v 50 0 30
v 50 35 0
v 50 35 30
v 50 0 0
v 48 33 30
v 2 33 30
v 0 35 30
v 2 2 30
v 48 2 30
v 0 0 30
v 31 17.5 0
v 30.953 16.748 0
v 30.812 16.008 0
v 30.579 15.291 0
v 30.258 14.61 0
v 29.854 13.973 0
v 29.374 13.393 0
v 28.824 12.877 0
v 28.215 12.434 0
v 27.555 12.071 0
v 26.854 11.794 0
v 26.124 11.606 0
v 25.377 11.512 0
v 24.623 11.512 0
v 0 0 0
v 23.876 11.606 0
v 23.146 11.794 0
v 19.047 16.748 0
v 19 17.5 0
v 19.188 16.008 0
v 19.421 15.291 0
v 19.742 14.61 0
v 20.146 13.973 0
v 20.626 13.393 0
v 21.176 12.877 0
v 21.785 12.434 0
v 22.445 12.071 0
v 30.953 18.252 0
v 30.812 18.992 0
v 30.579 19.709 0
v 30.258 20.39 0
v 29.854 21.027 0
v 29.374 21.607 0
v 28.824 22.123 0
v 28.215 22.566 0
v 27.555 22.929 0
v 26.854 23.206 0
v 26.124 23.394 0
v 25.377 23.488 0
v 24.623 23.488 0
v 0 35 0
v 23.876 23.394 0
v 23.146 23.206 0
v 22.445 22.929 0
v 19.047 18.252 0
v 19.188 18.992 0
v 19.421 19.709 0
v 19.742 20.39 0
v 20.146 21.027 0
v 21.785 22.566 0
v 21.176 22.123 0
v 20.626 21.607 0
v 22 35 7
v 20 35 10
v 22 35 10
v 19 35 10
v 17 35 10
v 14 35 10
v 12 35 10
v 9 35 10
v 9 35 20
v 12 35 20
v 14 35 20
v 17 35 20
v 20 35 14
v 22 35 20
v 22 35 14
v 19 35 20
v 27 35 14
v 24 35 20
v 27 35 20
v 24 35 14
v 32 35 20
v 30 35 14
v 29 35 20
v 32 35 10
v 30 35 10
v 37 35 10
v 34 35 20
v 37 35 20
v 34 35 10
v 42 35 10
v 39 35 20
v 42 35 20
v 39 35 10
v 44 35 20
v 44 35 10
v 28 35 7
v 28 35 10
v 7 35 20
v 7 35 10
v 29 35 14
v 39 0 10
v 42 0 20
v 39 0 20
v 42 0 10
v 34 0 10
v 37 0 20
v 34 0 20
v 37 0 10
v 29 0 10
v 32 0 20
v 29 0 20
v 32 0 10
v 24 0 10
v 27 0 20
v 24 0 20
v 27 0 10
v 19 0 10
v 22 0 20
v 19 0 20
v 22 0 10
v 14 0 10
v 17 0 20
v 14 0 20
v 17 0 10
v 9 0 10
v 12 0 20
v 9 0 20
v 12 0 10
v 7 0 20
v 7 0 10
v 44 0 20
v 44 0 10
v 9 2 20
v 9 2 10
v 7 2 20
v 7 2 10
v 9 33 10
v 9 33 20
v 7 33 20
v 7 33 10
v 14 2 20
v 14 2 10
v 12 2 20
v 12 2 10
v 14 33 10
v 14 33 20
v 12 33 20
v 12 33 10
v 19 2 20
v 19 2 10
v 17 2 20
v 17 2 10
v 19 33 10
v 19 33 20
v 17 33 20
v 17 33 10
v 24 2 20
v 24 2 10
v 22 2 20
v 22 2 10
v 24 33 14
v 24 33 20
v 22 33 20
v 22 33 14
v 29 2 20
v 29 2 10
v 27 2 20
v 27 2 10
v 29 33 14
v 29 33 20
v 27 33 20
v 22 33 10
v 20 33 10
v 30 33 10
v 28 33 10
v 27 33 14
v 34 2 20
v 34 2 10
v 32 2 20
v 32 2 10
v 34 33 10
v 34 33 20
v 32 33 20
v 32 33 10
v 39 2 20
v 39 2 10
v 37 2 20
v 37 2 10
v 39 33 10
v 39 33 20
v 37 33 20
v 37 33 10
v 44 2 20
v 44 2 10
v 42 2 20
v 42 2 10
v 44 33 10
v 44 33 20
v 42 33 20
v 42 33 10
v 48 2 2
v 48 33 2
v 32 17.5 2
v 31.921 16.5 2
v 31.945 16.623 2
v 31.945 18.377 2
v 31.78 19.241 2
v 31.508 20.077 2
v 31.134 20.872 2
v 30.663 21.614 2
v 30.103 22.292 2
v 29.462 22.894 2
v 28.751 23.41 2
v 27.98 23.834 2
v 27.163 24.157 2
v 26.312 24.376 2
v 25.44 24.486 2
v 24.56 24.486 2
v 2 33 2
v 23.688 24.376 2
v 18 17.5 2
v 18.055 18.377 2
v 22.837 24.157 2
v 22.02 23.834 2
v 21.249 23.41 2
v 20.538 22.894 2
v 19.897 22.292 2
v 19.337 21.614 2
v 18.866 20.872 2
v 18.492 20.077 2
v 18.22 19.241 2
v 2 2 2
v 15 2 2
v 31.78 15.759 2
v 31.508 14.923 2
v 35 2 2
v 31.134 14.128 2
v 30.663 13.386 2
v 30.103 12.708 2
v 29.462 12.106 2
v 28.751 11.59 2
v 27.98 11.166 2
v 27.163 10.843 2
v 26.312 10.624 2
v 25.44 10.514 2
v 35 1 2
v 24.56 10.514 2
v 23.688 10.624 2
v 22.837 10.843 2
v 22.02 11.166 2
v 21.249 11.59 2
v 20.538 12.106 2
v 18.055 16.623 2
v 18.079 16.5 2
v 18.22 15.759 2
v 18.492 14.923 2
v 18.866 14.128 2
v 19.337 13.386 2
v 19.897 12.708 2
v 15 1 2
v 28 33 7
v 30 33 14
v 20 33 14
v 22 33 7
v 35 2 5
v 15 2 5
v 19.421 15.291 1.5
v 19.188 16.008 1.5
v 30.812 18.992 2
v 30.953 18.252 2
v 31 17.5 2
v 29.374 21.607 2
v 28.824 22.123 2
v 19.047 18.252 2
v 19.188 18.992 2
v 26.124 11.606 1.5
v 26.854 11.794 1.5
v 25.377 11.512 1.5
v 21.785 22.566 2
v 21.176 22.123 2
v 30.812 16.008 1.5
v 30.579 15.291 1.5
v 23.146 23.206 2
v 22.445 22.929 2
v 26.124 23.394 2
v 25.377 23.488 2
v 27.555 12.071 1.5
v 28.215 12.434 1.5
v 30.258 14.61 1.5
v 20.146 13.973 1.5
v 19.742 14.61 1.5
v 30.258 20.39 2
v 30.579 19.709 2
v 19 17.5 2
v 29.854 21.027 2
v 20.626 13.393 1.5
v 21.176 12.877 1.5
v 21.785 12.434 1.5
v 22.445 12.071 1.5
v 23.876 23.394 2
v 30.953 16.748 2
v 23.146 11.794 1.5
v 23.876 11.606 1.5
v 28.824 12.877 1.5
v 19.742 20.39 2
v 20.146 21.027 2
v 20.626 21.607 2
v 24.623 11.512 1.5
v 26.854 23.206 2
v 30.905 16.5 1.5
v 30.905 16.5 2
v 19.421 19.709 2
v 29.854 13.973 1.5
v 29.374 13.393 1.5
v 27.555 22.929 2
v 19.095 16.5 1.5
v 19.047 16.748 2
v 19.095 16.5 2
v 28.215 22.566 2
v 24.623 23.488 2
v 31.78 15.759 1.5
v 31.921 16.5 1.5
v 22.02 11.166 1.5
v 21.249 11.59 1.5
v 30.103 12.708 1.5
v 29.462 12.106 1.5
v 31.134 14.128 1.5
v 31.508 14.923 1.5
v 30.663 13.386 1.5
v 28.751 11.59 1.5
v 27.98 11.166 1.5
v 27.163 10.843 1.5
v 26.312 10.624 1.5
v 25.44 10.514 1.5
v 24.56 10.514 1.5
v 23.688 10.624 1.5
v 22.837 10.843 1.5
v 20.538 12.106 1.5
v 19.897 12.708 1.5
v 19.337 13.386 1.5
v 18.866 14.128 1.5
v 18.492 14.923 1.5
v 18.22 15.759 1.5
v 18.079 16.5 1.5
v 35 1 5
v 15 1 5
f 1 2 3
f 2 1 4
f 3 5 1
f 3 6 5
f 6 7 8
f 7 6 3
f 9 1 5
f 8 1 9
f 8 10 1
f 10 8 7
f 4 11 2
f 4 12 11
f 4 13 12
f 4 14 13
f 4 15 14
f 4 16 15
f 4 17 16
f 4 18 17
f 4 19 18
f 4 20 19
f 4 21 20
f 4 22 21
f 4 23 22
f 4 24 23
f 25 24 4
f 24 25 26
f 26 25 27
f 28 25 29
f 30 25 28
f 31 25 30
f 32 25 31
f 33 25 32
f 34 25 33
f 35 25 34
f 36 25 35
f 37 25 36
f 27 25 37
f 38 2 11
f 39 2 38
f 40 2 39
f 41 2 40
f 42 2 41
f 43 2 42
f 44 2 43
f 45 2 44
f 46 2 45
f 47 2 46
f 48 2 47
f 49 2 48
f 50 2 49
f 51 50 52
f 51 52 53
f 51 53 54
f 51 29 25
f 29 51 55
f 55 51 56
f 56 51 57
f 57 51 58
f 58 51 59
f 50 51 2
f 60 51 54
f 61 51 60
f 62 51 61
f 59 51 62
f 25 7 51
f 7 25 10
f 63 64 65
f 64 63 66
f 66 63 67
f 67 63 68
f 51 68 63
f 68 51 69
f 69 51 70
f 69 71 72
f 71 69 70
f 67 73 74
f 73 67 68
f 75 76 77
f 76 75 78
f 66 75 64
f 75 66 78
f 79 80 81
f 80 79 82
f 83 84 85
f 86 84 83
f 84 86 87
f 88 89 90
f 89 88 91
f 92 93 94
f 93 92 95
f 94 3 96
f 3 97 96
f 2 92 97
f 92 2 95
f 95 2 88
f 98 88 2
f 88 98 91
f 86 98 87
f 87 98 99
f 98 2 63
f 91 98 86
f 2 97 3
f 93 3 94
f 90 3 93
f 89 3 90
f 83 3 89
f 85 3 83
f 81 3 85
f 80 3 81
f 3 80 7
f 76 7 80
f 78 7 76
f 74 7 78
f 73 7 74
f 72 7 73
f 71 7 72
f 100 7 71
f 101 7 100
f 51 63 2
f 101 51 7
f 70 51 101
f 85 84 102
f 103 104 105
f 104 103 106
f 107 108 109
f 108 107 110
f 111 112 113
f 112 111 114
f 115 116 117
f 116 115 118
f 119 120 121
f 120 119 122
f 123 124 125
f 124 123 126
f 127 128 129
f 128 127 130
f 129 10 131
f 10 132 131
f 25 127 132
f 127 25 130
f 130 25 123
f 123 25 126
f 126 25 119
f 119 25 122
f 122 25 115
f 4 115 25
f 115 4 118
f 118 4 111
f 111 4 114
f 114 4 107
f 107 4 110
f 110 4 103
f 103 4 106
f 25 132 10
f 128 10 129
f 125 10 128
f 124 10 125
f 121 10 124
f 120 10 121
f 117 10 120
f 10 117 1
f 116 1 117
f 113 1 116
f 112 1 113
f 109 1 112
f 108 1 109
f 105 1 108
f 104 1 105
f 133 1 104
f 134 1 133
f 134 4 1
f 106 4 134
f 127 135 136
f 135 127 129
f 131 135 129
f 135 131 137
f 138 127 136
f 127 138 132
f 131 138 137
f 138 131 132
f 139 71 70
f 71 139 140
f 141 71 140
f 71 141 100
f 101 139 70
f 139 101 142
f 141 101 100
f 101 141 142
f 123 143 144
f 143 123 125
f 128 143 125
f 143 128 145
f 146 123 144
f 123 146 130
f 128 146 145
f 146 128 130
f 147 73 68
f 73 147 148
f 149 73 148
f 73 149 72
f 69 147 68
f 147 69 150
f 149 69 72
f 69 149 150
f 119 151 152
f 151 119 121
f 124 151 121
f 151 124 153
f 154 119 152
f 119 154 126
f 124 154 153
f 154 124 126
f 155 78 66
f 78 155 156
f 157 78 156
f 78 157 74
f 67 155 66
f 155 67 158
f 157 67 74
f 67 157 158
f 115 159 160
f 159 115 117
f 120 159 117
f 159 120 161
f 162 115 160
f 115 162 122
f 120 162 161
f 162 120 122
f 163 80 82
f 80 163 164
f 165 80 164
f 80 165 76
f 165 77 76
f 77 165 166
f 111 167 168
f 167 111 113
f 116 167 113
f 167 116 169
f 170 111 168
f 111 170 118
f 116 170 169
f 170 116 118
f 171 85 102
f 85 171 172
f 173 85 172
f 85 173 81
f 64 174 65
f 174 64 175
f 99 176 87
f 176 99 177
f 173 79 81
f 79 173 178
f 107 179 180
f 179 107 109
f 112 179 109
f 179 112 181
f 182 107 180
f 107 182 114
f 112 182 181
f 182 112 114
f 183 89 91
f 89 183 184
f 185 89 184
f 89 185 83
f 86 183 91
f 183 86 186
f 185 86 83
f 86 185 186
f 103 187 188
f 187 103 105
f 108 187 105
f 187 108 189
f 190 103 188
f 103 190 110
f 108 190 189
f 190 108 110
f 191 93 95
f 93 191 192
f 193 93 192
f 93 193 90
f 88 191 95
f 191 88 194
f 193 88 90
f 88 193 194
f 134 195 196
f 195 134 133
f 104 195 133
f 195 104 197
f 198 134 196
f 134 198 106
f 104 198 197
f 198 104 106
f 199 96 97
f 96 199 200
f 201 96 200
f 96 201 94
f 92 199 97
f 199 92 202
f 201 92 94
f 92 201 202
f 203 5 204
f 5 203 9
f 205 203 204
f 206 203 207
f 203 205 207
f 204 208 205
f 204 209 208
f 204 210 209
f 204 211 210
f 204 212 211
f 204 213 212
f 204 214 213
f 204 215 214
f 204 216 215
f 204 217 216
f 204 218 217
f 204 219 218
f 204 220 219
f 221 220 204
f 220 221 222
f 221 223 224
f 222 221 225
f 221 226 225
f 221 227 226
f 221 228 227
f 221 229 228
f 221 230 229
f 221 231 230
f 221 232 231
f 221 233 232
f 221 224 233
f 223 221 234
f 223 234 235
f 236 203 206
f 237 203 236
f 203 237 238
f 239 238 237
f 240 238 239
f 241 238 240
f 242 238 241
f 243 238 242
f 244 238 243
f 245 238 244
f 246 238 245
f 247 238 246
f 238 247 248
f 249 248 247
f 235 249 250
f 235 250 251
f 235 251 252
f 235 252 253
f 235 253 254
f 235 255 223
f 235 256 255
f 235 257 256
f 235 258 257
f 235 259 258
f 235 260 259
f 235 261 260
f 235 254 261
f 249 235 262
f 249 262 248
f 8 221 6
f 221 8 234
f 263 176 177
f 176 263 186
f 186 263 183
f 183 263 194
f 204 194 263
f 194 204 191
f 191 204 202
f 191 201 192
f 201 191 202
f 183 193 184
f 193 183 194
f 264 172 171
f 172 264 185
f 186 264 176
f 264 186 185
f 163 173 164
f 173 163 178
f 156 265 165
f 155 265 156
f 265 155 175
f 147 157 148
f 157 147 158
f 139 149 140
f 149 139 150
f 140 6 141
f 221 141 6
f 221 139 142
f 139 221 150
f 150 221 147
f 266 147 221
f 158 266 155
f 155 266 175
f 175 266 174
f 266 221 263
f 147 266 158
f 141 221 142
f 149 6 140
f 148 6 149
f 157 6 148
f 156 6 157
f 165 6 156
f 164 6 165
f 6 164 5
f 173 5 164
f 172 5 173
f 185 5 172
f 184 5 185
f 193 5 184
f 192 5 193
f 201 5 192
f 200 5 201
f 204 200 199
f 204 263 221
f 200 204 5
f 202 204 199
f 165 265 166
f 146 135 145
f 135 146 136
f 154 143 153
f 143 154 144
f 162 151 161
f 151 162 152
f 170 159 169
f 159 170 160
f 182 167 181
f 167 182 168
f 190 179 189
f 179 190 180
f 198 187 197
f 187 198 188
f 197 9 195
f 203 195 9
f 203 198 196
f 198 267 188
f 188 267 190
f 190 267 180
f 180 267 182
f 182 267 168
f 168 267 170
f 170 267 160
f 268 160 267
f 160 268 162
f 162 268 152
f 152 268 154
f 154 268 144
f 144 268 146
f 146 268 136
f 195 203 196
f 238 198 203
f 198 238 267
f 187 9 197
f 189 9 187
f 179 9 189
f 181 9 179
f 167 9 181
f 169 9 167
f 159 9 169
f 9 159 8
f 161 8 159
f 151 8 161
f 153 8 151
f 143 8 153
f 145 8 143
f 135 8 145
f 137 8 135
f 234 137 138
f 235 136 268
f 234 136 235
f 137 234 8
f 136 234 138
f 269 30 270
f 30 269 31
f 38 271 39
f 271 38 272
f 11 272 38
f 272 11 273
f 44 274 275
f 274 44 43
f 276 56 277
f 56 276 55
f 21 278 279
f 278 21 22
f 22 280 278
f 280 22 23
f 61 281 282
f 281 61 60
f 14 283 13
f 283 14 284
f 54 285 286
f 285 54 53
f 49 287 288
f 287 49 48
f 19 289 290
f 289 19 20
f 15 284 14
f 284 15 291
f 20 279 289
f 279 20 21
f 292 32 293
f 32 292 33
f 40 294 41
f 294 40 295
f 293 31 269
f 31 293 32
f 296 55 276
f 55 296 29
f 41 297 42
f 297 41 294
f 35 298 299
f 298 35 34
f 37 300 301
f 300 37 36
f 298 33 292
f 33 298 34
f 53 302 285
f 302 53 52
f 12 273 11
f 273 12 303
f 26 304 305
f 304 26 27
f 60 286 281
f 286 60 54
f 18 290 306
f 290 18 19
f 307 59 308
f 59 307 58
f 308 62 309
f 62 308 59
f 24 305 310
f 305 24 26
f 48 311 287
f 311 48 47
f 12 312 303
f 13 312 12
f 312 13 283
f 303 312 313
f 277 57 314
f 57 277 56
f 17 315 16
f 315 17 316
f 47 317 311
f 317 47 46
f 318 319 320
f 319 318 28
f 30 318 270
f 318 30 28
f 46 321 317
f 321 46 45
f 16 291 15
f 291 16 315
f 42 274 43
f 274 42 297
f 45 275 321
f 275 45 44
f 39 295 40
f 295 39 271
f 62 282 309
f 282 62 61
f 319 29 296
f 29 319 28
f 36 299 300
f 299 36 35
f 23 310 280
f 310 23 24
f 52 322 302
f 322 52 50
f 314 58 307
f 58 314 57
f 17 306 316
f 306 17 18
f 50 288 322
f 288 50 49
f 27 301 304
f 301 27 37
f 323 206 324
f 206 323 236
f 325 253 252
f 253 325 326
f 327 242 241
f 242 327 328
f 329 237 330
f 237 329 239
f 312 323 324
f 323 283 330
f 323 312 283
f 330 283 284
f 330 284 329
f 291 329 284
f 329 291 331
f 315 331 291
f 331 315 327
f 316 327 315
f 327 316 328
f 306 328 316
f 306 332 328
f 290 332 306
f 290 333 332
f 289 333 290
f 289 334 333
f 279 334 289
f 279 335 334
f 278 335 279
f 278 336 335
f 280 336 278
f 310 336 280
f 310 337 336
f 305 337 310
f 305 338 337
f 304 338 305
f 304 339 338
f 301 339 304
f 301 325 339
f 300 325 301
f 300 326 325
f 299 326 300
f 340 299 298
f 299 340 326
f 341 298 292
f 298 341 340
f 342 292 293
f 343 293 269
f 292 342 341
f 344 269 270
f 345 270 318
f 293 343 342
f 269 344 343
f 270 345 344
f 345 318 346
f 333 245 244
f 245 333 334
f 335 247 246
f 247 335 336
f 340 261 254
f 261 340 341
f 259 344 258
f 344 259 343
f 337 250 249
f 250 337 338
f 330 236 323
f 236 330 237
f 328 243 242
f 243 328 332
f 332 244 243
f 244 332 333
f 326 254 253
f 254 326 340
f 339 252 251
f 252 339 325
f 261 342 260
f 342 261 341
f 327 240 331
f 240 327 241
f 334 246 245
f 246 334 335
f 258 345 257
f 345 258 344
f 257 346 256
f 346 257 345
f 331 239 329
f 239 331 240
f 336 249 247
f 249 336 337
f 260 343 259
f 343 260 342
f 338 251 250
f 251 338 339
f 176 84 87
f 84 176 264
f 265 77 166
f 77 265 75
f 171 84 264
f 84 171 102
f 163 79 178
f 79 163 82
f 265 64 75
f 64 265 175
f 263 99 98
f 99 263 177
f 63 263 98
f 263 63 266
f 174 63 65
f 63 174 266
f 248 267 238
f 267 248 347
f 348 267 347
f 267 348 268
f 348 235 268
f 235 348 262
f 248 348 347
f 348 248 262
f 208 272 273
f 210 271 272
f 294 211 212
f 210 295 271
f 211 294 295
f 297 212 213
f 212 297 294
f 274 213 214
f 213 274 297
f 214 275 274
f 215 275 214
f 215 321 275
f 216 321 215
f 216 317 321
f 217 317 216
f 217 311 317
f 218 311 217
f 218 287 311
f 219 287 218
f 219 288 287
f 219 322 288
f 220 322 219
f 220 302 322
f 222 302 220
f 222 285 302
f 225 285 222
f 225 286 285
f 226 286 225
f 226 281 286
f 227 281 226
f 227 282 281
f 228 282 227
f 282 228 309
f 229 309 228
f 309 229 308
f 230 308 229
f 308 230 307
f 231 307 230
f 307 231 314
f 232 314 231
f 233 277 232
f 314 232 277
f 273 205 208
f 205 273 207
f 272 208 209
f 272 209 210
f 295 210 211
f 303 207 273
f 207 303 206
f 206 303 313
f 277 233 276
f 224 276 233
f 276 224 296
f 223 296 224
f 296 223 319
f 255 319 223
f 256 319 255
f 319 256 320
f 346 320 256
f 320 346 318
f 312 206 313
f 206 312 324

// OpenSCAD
// ESP32-CAM Security Camera Case - Main Body
// For Creality Ender-3 V3
// Material: Hyper-PAL (Grey) or Hyper-PETG

// ===== PARAMETERS =====
// Main case dimensions
case_length = 50;
case_width = 35;
case_height = 30;
wall_thickness = 2;

// PCB dimensions
pcb_length = 39.8;
pcb_width = 27;
pcb_height = 4.5;
pcb_support_height = 2;

// Camera lens opening
lens_diameter = 12;
lens_bezel_width = 1;

// Ventilation
vent_slot_length = 10;
vent_slot_width = 2;
vent_hole_diameter = 3;

// USB cutout
usb_width = 10;
usb_height = 4;

// Snap-fit post
post_diameter = 2;
post_height = 16;

// ===== MAIN BODY =====
difference() {
    union() {
        // Outer shell
        cube([case_length, case_width, case_height]);

        // PCB support ribs
        translate([
            (case_length - pcb_length)/2,
            (case_width - pcb_width)/2,
            wall_thickness
        ])
        cube([pcb_length, 1, pcb_support_height]);

        translate([
            (case_length - pcb_length)/2,
            (case_width - pcb_width)/2 + pcb_width - 1,
            wall_thickness
        ])
        cube([pcb_length, 1, pcb_support_height]);

        // Snap-fit posts (4 corners)
        post_positions = [
            [(case_length - pcb_length)/2 + 3, (case_width - pcb_width)/2 + 3],
            [(case_length + pcb_length)/2 - 3, (case_width - pcb_width)/2 + 3],
            [(case_length - pcb_length)/2 + 3, (case_width + pcb_width)/2 - 3],
            [(case_length + pcb_length)/2 - 3, (case_width + pcb_width)/2 - 3]
        ];

        for (pos = post_positions) {
            translate([pos[0], pos[1], wall_thickness])
                cylinder(h=post_height, d=post_diameter, $fn=20);
        }

        // Rear clip holders (for cover attachment)
        // Left clip holder
        translate([wall_thickness, case_width/2 - 5, case_height - 5])
            cube([3, 10, 5]);

        // Right clip holder
        translate([case_length - wall_thickness - 3, case_width/2 - 5, case_height - 5])
            cube([3, 10, 5]);
    }

    // Hollow interior
    translate([wall_thickness, wall_thickness, wall_thickness])
        cube([
            case_length - 2*wall_thickness,
            case_width - 2*wall_thickness,
            case_height
        ]);

    // Camera lens opening (front)
    translate([case_length/2, case_width/2, -1])
        cylinder(h=wall_thickness+2, d=lens_diameter, $fn=50);

    // Lens bezel (recessed ring around lens)
    translate([case_length/2, case_width/2, wall_thickness - 0.5])
        cylinder(h=1.5, d=lens_diameter + 2*lens_bezel_width, $fn=50);

    // USB cutout (back, centered vertically)
    translate([case_length/2 - usb_width/2, case_width - wall_thickness - 1, case_height/3])
        cube([usb_width, wall_thickness+2, usb_height]);

    // Cable strain relief channel (below USB)
    translate([case_length/2 - 3, case_width - wall_thickness - 1, case_height/3 - 3])
        cube([6, wall_thickness+2, 3]);

    // Side ventilation slots (8 per side)
    for (i = [0:7]) {
        // Left side
        translate([
            wall_thickness + 5 + i*5,
            -1,
            case_height/2 - vent_slot_length/2
        ])
        cube([vent_slot_width, wall_thickness+2, vent_slot_length]);

        // Right side
        translate([
            wall_thickness + 5 + i*5,
            case_width - wall_thickness - 1,
            case_height/2 - vent_slot_length/2
        ])
        cube([vent_slot_width, wall_thickness+2, vent_slot_length]);
    }

    // Top ventilation holes (4 holes)
    for (i = [0:3]) {
        translate([
            case_length/2 + (i-1.5)*8,
            case_width/2,
            case_height - wall_thickness - 1
        ])
        cylinder(h=wall_thickness+2, d=vent_hole_diameter, $fn=20);
    }

    // GPIO access slot (bottom, optional)
    translate([case_length/2 - 10, wall_thickness - 1, wall_thickness])
        cube([20, wall_thickness+2, 3]);
}

// Front lens bezel ring (protective ridge)
difference() {
    translate([case_length/2, case_width/2, 0])
        cylinder(h=wall_thickness, d=lens_diameter + 2*lens_bezel_width, $fn=50);

    translate([case_length/2, case_width/2, -1])
        cylinder(h=wall_thickness+2, d=lens_diameter, $fn=50);

    // Cut away back half so it doesn't interfere with case
    translate([-case_length/2, -1, -1])
        cube([case_length*2, case_width/2, wall_thickness+2]);
}

// Add text label on bottom (optional - comment out if not desired)
translate([case_length/2 - 10, 3, 0.5])
    linear_extrude(height=0.5)
    text("CAM", size=4, font="Arial:style=Bold", halign="center");
